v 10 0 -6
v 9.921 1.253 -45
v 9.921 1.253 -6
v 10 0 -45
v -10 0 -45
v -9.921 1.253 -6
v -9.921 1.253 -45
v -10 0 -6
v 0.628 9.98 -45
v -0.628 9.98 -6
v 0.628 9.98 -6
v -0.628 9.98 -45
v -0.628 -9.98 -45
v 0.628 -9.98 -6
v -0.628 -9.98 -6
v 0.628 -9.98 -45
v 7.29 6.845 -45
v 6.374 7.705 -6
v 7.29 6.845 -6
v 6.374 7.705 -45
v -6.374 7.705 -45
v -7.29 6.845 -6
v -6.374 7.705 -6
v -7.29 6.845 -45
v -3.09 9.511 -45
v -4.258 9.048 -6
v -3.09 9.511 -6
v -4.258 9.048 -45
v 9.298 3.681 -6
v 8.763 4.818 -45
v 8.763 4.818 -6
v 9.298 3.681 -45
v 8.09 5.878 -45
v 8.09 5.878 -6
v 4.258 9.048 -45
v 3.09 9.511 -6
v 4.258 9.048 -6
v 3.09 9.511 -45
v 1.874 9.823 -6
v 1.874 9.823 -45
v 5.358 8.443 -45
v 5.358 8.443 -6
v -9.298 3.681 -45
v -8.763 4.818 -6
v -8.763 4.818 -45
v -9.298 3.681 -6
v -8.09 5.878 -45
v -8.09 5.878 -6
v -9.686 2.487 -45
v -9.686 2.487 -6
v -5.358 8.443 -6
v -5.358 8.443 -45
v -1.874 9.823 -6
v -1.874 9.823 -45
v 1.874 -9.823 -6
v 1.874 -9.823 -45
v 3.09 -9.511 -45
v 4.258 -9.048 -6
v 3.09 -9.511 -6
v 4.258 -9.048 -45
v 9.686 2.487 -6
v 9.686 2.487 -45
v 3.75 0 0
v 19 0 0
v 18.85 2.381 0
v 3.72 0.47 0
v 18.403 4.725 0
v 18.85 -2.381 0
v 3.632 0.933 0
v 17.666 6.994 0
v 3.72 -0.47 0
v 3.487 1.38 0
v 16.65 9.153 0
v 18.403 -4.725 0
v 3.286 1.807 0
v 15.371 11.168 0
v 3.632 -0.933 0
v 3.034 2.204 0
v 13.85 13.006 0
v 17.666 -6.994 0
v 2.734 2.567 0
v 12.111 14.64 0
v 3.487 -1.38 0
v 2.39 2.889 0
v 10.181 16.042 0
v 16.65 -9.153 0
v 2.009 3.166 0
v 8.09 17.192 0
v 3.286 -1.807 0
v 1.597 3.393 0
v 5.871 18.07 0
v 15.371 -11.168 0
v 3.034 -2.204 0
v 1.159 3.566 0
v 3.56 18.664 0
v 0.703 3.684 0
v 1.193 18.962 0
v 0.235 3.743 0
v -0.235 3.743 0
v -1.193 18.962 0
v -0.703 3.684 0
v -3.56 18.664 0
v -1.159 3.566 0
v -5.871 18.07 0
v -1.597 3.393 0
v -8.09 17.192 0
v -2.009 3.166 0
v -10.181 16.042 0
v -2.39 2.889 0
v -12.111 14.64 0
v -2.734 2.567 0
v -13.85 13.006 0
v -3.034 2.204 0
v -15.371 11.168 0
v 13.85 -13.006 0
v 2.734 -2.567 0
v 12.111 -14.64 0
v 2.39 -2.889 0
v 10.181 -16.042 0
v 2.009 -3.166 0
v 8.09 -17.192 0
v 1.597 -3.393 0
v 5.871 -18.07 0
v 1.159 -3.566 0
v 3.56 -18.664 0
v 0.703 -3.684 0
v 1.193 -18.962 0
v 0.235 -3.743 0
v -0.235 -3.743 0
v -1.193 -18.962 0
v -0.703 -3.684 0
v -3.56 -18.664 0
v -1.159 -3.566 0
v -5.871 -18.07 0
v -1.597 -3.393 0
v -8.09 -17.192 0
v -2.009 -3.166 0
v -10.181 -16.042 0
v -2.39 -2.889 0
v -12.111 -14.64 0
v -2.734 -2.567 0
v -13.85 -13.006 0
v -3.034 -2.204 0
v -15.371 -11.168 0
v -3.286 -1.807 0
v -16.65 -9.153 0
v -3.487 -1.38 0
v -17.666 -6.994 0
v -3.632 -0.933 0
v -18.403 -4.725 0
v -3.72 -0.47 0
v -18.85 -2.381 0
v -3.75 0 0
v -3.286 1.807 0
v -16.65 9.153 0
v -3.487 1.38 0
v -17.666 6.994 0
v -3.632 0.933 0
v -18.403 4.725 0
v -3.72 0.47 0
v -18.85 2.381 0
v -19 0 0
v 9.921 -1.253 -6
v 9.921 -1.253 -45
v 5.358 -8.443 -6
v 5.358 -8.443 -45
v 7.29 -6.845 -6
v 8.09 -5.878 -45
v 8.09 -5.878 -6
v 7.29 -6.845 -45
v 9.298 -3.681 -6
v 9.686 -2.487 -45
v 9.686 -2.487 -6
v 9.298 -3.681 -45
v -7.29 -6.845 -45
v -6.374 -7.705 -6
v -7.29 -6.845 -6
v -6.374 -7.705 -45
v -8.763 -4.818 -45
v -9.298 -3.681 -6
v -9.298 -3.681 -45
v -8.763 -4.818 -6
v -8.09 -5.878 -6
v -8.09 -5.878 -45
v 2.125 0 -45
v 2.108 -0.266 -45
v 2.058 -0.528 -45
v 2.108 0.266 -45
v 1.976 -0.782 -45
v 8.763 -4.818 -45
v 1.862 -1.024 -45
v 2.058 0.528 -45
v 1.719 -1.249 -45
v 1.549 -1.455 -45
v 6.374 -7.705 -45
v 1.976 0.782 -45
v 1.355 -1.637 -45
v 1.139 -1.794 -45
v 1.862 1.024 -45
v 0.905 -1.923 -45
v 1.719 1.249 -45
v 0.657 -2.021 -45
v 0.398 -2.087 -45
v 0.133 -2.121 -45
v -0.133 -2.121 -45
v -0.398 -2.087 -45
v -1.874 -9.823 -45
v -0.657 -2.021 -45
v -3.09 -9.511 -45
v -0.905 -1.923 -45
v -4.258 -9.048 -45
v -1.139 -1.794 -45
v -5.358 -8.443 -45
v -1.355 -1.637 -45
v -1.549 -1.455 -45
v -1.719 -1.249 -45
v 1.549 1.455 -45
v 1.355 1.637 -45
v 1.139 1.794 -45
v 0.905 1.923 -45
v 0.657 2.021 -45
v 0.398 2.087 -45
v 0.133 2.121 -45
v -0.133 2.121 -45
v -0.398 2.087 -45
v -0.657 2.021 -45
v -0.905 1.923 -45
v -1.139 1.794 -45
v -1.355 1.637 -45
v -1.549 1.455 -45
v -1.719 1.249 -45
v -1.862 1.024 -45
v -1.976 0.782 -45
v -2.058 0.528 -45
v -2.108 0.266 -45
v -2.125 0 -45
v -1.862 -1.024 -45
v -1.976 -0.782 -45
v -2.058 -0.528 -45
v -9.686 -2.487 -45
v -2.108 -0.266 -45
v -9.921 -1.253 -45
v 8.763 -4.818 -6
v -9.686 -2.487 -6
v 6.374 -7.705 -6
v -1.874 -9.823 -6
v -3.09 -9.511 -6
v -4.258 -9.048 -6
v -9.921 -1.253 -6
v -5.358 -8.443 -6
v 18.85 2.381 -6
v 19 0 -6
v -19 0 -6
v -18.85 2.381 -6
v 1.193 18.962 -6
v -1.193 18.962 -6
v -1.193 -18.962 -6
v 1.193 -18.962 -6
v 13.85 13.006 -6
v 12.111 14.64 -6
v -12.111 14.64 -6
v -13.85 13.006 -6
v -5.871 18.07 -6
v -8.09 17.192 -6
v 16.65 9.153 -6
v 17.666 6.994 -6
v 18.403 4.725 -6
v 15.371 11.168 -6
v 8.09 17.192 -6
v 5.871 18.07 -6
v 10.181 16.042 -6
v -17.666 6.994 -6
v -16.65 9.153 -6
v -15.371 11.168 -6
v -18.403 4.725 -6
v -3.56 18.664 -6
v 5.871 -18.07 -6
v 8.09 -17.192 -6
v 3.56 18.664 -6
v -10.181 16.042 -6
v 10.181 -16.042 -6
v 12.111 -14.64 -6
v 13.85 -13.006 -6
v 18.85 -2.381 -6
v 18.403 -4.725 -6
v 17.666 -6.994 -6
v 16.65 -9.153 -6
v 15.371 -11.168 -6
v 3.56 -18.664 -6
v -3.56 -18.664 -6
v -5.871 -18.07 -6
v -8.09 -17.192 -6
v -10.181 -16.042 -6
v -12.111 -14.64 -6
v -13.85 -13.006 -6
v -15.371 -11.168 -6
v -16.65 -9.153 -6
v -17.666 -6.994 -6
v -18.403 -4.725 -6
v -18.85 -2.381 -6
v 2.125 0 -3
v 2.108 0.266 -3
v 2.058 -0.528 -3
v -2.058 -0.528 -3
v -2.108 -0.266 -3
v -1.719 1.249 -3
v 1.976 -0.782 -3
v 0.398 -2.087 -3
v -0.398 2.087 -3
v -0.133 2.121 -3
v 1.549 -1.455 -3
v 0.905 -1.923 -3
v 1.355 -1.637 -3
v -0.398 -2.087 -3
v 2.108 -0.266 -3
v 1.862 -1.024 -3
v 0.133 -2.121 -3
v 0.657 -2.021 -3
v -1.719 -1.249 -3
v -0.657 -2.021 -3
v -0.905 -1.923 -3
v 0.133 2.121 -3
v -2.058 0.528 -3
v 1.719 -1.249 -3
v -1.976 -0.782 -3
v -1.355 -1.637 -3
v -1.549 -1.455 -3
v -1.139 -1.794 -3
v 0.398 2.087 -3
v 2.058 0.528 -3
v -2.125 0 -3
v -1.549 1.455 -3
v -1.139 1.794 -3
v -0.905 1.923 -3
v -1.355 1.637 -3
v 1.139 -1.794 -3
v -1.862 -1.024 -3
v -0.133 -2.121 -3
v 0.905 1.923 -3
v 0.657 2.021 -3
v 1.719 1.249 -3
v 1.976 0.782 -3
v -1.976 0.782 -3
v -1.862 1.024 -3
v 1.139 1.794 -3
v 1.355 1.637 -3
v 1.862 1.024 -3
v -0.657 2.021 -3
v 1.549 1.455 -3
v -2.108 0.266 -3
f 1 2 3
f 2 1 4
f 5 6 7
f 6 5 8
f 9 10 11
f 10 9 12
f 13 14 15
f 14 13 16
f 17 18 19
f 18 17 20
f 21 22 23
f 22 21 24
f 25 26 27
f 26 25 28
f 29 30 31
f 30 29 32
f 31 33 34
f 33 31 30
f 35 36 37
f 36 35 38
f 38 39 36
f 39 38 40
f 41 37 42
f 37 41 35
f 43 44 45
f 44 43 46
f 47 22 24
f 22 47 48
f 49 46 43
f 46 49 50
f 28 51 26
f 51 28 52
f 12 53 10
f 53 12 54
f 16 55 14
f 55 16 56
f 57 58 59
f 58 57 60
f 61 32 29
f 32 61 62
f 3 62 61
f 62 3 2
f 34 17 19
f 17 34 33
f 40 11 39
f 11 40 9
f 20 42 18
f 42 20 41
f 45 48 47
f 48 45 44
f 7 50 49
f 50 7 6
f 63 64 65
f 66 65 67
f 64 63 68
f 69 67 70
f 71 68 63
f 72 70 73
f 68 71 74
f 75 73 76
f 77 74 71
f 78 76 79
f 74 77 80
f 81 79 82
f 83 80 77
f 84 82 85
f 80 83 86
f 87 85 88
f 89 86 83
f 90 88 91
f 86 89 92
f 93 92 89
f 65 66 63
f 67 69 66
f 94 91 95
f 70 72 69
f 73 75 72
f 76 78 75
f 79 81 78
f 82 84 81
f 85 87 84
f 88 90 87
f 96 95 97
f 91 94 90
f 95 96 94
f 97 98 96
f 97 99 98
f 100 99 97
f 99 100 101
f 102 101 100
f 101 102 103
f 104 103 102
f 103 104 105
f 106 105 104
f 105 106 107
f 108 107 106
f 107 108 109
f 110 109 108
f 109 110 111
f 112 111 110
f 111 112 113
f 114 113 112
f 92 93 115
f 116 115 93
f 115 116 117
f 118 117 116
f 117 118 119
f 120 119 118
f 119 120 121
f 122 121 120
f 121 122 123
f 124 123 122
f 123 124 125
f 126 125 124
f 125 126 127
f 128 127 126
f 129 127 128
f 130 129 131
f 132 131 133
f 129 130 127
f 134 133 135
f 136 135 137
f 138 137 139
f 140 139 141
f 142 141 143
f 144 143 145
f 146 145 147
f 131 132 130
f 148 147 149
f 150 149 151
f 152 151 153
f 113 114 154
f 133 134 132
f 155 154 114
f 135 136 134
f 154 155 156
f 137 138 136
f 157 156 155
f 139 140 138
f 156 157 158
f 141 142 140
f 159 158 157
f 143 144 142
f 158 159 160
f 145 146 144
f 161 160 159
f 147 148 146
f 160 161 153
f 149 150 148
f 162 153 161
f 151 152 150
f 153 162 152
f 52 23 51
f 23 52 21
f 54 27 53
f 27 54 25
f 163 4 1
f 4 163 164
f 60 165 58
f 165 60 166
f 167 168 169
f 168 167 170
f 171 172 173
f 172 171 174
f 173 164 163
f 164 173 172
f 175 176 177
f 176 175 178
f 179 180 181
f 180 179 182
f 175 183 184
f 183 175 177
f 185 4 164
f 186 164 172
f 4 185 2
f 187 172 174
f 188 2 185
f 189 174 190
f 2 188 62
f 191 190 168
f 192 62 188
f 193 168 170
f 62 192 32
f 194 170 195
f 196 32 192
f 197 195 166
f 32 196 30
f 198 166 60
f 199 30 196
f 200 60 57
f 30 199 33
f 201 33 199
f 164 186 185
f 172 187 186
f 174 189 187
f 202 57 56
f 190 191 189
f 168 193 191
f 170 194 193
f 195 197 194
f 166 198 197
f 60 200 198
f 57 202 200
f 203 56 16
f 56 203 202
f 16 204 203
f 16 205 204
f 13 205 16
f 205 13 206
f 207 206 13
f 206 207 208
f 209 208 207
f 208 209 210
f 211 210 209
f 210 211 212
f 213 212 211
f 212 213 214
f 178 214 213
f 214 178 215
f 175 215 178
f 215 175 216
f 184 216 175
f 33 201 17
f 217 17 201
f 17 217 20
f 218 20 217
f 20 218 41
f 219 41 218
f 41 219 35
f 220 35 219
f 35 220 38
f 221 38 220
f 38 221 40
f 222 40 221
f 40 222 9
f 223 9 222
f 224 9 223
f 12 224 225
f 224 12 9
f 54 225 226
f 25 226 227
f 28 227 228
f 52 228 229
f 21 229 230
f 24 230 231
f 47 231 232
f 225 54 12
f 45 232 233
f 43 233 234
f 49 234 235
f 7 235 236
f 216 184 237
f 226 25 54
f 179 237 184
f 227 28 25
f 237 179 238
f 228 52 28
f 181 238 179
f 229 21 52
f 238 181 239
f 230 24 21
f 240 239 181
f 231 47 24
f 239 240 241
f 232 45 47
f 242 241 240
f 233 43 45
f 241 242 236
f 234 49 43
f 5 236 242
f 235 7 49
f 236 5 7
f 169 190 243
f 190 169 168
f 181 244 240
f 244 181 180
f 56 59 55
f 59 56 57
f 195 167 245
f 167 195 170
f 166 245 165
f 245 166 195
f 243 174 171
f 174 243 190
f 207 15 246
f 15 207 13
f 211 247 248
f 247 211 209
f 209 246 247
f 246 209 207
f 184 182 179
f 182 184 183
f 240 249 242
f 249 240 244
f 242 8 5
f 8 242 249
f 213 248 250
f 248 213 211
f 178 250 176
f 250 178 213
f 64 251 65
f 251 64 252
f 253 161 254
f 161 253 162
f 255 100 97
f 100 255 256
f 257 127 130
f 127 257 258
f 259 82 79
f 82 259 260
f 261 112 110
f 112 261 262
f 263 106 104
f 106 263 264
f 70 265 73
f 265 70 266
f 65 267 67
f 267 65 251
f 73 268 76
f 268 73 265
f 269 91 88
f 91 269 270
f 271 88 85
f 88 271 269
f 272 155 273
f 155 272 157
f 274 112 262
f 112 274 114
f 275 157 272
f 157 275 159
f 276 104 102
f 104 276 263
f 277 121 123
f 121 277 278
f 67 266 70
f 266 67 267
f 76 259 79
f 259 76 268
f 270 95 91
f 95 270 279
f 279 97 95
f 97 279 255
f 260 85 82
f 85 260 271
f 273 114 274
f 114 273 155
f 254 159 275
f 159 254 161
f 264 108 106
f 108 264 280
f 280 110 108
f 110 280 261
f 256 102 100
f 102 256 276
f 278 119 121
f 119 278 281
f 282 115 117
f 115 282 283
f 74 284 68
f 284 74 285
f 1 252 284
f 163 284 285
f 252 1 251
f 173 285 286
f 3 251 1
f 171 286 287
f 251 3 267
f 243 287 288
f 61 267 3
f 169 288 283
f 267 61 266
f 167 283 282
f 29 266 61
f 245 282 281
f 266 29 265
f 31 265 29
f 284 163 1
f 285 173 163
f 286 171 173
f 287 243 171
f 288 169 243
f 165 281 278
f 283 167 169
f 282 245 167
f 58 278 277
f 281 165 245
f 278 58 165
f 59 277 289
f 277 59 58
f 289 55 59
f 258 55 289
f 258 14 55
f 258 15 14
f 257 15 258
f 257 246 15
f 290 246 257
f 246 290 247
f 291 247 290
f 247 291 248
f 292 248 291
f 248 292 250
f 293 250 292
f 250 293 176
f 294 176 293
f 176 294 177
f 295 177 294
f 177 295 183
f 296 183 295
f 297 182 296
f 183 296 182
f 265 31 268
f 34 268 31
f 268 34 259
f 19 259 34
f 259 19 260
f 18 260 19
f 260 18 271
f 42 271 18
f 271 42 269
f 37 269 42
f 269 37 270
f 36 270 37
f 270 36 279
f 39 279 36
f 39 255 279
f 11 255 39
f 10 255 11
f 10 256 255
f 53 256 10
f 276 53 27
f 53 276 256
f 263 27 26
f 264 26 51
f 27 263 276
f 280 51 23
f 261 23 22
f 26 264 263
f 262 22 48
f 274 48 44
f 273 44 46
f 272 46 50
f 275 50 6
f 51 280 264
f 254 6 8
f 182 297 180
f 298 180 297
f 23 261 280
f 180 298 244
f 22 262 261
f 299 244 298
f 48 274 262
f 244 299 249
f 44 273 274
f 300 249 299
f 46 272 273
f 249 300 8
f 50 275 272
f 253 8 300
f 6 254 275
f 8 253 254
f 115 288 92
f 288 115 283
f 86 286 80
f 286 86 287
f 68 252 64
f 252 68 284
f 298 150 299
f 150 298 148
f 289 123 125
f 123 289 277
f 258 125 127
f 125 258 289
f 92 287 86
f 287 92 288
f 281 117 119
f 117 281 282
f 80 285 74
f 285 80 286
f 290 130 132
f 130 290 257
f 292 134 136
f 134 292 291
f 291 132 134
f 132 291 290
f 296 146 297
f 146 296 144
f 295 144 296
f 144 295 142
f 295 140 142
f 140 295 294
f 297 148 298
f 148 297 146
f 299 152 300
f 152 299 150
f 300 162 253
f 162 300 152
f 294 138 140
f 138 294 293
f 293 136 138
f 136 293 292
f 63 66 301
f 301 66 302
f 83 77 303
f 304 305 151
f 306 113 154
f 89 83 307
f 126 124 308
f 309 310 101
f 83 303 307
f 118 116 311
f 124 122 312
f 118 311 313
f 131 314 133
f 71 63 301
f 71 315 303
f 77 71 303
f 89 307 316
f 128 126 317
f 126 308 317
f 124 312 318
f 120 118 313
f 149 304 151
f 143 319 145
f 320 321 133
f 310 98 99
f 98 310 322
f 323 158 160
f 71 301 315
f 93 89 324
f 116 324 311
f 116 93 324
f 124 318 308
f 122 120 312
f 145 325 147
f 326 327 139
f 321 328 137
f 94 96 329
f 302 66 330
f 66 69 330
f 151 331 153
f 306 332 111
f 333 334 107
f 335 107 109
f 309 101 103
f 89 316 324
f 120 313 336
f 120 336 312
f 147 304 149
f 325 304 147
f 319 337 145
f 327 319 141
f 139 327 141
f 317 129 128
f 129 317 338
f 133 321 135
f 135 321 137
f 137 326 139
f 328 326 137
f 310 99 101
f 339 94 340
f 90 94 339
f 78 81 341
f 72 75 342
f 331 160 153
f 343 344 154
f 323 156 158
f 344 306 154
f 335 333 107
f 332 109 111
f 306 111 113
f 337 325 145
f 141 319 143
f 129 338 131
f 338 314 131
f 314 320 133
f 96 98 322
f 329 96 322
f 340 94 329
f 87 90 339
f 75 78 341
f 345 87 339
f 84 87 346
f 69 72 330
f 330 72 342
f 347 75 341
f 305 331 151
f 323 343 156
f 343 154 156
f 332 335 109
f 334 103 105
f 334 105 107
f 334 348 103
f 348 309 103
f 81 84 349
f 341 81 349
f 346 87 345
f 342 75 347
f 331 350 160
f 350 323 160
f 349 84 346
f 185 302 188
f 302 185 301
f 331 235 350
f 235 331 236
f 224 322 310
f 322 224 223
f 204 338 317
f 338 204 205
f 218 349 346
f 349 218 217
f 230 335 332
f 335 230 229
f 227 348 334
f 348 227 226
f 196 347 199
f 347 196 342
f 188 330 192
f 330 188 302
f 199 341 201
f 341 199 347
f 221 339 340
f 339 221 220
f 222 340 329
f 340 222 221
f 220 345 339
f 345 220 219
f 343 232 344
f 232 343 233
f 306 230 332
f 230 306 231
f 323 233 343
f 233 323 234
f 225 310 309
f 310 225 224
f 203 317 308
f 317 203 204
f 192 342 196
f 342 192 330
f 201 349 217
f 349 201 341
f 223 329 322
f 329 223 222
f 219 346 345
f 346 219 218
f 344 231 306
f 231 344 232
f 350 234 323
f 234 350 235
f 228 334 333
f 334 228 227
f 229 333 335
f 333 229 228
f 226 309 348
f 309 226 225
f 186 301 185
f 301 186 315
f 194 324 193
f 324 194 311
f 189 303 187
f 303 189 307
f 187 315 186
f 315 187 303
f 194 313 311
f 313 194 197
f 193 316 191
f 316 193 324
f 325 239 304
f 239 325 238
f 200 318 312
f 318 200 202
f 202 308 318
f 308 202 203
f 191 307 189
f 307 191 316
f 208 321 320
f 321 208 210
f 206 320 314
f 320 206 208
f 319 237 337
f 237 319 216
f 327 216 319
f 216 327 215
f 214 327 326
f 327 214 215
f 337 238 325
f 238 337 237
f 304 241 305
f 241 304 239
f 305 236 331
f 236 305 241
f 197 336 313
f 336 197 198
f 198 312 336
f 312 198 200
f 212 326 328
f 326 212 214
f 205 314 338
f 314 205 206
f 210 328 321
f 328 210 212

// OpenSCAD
$fn = 50;


difference() {
	union() {
		translate(v = [0, 0, -45.0000000000]) {
			cylinder(h = 45, r = 10.0000000000);
		}
		translate(v = [0, 0, -6.0000000000]) {
			cylinder(h = 6, r = 19.0000000000);
		}
	}
	union() {
		translate(v = [0, 0, 0]) {
			rotate(a = [0, 0, 0]) {
				difference() {
					union() {
						#translate(v = [0, 0, -45.0000000000]) {
							cylinder(h = 45, r = 2.0000000000);
						}
						#translate(v = [0, 0, -3]) {
							cylinder(h = 3, r1 = 2.1250000000, r2 = 3.7500000000);
						}
						#translate(v = [0, 0, -45.0000000000]) {
							cylinder(h = 45, r = 2.1250000000);
						}
						#translate(v = [0, 0, -45.0000000000]) {
							cylinder(h = 45, r = 2.0000000000);
						}
					}
					union();
				}
			}
		}
	}
}
